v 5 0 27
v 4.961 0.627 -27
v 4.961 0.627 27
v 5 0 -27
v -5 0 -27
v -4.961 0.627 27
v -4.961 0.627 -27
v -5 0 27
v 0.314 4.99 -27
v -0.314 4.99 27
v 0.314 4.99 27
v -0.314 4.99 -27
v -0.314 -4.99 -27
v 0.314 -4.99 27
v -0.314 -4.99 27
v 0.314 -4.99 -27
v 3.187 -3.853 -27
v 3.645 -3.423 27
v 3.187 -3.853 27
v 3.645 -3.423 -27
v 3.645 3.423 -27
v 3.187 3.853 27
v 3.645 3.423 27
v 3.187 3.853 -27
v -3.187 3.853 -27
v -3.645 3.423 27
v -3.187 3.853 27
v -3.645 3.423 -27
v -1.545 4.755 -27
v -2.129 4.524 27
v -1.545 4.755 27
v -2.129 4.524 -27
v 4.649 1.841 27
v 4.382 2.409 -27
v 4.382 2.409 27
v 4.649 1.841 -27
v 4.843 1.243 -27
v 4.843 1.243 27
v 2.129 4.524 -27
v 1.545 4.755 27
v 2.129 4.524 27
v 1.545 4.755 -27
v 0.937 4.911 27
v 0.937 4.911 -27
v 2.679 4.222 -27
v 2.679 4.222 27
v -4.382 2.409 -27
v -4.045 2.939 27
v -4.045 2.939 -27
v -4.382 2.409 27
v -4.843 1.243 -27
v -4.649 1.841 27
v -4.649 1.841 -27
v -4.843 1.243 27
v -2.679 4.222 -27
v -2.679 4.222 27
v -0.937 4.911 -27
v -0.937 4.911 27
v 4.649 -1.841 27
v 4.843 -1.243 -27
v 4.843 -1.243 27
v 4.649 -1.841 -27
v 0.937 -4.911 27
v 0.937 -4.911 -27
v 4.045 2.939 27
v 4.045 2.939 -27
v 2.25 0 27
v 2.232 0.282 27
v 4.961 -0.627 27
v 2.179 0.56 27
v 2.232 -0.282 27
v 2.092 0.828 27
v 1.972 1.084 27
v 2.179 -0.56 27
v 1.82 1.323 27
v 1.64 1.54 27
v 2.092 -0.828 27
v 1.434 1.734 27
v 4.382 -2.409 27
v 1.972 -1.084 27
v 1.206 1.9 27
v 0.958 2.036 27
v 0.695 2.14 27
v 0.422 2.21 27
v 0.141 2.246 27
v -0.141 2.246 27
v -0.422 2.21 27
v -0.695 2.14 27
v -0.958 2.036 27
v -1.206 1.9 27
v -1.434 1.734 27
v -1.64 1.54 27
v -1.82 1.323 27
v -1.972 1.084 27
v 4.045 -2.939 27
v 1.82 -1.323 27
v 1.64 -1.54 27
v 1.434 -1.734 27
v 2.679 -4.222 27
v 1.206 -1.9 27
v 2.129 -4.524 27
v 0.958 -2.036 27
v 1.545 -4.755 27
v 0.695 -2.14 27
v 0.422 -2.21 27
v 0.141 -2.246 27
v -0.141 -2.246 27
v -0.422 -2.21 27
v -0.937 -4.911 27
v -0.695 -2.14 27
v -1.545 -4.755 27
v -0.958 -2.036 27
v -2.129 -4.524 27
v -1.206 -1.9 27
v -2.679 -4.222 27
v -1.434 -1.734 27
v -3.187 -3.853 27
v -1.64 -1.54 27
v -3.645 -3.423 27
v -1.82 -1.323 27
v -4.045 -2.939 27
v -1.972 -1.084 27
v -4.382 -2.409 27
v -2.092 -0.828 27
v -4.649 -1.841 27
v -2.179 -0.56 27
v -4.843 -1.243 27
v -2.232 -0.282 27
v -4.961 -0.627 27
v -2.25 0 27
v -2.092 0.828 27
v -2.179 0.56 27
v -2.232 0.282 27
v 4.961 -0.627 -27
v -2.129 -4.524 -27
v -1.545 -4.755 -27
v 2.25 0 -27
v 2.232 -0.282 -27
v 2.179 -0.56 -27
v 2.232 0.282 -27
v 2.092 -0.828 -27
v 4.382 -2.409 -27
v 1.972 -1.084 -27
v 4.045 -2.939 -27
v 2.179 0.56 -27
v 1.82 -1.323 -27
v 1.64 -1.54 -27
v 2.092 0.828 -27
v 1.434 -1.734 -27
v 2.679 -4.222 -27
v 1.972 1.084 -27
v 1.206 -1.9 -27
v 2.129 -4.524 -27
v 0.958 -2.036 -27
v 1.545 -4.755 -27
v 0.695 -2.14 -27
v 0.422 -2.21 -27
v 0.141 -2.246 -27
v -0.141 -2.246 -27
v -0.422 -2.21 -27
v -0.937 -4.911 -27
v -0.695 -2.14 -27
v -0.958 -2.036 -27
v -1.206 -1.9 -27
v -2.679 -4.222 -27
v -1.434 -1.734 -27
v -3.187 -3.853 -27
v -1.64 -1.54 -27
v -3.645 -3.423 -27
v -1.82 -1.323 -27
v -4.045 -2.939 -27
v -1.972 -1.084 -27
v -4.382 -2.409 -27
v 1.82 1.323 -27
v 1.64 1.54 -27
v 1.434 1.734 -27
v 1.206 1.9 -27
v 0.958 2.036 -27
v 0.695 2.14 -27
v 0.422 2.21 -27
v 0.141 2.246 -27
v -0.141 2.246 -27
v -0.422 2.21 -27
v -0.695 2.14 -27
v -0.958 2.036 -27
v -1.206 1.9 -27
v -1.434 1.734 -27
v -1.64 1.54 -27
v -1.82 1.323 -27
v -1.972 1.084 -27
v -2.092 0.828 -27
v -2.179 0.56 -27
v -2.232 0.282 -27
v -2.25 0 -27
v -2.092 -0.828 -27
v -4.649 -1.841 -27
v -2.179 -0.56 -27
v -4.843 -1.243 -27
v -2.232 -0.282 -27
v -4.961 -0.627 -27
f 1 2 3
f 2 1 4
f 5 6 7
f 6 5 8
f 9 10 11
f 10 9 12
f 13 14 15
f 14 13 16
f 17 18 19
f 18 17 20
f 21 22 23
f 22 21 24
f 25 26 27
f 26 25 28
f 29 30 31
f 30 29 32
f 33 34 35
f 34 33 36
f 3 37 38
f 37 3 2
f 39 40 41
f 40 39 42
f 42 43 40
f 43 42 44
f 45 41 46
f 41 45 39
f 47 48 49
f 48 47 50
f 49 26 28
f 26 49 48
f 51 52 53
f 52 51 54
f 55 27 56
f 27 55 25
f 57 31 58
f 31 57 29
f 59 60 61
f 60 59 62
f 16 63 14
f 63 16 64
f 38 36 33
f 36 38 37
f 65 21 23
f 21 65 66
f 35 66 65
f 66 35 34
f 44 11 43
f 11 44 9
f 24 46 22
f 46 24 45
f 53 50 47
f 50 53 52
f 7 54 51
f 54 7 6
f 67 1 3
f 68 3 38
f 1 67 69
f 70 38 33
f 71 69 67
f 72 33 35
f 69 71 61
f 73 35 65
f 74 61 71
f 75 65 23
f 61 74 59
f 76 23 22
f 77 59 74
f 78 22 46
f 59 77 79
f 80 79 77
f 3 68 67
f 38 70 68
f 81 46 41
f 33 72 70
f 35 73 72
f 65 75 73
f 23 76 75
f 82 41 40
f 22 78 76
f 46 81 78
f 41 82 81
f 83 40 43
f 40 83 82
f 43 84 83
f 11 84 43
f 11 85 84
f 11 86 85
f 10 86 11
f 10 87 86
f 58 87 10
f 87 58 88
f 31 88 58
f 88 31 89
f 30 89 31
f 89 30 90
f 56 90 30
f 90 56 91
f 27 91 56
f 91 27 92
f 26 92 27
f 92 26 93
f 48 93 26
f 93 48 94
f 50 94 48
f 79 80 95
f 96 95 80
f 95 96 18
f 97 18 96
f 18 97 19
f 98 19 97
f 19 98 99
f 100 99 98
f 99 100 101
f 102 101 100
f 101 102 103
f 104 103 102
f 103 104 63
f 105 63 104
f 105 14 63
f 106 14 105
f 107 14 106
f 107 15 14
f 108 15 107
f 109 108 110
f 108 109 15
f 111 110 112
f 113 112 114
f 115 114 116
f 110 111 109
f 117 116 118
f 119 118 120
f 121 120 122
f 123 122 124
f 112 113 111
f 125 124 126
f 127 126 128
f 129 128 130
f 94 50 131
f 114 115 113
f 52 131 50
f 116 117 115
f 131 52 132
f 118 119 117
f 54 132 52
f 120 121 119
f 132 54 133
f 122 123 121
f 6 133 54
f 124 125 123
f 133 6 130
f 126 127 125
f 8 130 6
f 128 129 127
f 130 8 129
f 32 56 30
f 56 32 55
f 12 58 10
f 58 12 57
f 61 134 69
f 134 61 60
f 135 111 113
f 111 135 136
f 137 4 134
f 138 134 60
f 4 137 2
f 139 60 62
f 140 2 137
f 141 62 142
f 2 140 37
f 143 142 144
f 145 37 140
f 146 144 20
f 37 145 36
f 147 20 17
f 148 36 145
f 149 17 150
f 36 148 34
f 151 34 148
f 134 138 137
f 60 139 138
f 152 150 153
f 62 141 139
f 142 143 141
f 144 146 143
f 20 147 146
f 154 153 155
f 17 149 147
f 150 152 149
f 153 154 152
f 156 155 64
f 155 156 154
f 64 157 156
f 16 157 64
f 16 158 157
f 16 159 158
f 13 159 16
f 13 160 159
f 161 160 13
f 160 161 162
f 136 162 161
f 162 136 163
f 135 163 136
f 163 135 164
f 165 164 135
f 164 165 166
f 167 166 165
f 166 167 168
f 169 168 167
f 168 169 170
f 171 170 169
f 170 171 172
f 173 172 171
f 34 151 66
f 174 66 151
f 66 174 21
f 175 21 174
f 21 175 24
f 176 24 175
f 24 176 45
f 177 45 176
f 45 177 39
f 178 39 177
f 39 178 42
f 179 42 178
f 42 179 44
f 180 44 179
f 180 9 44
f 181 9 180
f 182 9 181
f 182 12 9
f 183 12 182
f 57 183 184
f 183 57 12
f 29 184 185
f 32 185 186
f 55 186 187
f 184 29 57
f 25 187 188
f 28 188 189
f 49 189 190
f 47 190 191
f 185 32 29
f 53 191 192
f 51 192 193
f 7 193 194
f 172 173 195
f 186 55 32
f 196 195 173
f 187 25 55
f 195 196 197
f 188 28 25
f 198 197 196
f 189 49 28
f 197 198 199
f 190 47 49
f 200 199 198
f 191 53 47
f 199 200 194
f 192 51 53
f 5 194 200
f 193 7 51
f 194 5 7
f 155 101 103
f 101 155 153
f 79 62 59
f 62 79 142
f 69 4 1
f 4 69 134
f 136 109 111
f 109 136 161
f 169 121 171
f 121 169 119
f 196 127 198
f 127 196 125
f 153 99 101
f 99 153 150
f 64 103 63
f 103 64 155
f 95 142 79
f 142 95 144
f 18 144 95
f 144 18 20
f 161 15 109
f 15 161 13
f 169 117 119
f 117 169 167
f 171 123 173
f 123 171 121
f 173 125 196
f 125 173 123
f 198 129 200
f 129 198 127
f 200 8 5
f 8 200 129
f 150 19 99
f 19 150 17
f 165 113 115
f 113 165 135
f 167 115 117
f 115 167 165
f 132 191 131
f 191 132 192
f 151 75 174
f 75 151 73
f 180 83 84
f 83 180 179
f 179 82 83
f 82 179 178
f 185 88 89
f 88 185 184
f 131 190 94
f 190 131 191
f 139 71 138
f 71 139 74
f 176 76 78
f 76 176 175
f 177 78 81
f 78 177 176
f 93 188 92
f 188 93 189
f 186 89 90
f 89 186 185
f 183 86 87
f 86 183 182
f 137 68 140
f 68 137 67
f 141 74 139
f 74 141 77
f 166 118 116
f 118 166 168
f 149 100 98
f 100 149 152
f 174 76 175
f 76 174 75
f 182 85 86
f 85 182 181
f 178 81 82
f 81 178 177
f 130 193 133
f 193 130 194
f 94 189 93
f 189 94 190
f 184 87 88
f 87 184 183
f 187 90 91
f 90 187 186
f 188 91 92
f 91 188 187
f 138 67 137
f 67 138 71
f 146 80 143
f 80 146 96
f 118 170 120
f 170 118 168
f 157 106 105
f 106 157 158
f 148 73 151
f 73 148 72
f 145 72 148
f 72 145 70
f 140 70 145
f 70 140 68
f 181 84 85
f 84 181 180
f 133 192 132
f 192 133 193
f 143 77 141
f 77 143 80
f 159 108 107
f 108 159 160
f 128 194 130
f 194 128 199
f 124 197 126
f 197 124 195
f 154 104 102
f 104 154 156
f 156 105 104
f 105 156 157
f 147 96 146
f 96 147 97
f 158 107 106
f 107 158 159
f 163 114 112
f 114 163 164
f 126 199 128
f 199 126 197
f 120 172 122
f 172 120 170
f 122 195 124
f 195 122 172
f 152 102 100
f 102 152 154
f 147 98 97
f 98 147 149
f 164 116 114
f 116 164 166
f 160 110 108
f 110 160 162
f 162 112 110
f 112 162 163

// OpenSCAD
$fn = 50;


difference() {
	union() {
		translate(v = [0, 0, -27.0000000000]) {
			cylinder(h = 54, r = 5.0000000000);
		}
	}
	union() {
		translate(v = [0, 0, -100.0000000000]) {
			cylinder(h = 200, r = 2.2500000000);
		}
	}
}
